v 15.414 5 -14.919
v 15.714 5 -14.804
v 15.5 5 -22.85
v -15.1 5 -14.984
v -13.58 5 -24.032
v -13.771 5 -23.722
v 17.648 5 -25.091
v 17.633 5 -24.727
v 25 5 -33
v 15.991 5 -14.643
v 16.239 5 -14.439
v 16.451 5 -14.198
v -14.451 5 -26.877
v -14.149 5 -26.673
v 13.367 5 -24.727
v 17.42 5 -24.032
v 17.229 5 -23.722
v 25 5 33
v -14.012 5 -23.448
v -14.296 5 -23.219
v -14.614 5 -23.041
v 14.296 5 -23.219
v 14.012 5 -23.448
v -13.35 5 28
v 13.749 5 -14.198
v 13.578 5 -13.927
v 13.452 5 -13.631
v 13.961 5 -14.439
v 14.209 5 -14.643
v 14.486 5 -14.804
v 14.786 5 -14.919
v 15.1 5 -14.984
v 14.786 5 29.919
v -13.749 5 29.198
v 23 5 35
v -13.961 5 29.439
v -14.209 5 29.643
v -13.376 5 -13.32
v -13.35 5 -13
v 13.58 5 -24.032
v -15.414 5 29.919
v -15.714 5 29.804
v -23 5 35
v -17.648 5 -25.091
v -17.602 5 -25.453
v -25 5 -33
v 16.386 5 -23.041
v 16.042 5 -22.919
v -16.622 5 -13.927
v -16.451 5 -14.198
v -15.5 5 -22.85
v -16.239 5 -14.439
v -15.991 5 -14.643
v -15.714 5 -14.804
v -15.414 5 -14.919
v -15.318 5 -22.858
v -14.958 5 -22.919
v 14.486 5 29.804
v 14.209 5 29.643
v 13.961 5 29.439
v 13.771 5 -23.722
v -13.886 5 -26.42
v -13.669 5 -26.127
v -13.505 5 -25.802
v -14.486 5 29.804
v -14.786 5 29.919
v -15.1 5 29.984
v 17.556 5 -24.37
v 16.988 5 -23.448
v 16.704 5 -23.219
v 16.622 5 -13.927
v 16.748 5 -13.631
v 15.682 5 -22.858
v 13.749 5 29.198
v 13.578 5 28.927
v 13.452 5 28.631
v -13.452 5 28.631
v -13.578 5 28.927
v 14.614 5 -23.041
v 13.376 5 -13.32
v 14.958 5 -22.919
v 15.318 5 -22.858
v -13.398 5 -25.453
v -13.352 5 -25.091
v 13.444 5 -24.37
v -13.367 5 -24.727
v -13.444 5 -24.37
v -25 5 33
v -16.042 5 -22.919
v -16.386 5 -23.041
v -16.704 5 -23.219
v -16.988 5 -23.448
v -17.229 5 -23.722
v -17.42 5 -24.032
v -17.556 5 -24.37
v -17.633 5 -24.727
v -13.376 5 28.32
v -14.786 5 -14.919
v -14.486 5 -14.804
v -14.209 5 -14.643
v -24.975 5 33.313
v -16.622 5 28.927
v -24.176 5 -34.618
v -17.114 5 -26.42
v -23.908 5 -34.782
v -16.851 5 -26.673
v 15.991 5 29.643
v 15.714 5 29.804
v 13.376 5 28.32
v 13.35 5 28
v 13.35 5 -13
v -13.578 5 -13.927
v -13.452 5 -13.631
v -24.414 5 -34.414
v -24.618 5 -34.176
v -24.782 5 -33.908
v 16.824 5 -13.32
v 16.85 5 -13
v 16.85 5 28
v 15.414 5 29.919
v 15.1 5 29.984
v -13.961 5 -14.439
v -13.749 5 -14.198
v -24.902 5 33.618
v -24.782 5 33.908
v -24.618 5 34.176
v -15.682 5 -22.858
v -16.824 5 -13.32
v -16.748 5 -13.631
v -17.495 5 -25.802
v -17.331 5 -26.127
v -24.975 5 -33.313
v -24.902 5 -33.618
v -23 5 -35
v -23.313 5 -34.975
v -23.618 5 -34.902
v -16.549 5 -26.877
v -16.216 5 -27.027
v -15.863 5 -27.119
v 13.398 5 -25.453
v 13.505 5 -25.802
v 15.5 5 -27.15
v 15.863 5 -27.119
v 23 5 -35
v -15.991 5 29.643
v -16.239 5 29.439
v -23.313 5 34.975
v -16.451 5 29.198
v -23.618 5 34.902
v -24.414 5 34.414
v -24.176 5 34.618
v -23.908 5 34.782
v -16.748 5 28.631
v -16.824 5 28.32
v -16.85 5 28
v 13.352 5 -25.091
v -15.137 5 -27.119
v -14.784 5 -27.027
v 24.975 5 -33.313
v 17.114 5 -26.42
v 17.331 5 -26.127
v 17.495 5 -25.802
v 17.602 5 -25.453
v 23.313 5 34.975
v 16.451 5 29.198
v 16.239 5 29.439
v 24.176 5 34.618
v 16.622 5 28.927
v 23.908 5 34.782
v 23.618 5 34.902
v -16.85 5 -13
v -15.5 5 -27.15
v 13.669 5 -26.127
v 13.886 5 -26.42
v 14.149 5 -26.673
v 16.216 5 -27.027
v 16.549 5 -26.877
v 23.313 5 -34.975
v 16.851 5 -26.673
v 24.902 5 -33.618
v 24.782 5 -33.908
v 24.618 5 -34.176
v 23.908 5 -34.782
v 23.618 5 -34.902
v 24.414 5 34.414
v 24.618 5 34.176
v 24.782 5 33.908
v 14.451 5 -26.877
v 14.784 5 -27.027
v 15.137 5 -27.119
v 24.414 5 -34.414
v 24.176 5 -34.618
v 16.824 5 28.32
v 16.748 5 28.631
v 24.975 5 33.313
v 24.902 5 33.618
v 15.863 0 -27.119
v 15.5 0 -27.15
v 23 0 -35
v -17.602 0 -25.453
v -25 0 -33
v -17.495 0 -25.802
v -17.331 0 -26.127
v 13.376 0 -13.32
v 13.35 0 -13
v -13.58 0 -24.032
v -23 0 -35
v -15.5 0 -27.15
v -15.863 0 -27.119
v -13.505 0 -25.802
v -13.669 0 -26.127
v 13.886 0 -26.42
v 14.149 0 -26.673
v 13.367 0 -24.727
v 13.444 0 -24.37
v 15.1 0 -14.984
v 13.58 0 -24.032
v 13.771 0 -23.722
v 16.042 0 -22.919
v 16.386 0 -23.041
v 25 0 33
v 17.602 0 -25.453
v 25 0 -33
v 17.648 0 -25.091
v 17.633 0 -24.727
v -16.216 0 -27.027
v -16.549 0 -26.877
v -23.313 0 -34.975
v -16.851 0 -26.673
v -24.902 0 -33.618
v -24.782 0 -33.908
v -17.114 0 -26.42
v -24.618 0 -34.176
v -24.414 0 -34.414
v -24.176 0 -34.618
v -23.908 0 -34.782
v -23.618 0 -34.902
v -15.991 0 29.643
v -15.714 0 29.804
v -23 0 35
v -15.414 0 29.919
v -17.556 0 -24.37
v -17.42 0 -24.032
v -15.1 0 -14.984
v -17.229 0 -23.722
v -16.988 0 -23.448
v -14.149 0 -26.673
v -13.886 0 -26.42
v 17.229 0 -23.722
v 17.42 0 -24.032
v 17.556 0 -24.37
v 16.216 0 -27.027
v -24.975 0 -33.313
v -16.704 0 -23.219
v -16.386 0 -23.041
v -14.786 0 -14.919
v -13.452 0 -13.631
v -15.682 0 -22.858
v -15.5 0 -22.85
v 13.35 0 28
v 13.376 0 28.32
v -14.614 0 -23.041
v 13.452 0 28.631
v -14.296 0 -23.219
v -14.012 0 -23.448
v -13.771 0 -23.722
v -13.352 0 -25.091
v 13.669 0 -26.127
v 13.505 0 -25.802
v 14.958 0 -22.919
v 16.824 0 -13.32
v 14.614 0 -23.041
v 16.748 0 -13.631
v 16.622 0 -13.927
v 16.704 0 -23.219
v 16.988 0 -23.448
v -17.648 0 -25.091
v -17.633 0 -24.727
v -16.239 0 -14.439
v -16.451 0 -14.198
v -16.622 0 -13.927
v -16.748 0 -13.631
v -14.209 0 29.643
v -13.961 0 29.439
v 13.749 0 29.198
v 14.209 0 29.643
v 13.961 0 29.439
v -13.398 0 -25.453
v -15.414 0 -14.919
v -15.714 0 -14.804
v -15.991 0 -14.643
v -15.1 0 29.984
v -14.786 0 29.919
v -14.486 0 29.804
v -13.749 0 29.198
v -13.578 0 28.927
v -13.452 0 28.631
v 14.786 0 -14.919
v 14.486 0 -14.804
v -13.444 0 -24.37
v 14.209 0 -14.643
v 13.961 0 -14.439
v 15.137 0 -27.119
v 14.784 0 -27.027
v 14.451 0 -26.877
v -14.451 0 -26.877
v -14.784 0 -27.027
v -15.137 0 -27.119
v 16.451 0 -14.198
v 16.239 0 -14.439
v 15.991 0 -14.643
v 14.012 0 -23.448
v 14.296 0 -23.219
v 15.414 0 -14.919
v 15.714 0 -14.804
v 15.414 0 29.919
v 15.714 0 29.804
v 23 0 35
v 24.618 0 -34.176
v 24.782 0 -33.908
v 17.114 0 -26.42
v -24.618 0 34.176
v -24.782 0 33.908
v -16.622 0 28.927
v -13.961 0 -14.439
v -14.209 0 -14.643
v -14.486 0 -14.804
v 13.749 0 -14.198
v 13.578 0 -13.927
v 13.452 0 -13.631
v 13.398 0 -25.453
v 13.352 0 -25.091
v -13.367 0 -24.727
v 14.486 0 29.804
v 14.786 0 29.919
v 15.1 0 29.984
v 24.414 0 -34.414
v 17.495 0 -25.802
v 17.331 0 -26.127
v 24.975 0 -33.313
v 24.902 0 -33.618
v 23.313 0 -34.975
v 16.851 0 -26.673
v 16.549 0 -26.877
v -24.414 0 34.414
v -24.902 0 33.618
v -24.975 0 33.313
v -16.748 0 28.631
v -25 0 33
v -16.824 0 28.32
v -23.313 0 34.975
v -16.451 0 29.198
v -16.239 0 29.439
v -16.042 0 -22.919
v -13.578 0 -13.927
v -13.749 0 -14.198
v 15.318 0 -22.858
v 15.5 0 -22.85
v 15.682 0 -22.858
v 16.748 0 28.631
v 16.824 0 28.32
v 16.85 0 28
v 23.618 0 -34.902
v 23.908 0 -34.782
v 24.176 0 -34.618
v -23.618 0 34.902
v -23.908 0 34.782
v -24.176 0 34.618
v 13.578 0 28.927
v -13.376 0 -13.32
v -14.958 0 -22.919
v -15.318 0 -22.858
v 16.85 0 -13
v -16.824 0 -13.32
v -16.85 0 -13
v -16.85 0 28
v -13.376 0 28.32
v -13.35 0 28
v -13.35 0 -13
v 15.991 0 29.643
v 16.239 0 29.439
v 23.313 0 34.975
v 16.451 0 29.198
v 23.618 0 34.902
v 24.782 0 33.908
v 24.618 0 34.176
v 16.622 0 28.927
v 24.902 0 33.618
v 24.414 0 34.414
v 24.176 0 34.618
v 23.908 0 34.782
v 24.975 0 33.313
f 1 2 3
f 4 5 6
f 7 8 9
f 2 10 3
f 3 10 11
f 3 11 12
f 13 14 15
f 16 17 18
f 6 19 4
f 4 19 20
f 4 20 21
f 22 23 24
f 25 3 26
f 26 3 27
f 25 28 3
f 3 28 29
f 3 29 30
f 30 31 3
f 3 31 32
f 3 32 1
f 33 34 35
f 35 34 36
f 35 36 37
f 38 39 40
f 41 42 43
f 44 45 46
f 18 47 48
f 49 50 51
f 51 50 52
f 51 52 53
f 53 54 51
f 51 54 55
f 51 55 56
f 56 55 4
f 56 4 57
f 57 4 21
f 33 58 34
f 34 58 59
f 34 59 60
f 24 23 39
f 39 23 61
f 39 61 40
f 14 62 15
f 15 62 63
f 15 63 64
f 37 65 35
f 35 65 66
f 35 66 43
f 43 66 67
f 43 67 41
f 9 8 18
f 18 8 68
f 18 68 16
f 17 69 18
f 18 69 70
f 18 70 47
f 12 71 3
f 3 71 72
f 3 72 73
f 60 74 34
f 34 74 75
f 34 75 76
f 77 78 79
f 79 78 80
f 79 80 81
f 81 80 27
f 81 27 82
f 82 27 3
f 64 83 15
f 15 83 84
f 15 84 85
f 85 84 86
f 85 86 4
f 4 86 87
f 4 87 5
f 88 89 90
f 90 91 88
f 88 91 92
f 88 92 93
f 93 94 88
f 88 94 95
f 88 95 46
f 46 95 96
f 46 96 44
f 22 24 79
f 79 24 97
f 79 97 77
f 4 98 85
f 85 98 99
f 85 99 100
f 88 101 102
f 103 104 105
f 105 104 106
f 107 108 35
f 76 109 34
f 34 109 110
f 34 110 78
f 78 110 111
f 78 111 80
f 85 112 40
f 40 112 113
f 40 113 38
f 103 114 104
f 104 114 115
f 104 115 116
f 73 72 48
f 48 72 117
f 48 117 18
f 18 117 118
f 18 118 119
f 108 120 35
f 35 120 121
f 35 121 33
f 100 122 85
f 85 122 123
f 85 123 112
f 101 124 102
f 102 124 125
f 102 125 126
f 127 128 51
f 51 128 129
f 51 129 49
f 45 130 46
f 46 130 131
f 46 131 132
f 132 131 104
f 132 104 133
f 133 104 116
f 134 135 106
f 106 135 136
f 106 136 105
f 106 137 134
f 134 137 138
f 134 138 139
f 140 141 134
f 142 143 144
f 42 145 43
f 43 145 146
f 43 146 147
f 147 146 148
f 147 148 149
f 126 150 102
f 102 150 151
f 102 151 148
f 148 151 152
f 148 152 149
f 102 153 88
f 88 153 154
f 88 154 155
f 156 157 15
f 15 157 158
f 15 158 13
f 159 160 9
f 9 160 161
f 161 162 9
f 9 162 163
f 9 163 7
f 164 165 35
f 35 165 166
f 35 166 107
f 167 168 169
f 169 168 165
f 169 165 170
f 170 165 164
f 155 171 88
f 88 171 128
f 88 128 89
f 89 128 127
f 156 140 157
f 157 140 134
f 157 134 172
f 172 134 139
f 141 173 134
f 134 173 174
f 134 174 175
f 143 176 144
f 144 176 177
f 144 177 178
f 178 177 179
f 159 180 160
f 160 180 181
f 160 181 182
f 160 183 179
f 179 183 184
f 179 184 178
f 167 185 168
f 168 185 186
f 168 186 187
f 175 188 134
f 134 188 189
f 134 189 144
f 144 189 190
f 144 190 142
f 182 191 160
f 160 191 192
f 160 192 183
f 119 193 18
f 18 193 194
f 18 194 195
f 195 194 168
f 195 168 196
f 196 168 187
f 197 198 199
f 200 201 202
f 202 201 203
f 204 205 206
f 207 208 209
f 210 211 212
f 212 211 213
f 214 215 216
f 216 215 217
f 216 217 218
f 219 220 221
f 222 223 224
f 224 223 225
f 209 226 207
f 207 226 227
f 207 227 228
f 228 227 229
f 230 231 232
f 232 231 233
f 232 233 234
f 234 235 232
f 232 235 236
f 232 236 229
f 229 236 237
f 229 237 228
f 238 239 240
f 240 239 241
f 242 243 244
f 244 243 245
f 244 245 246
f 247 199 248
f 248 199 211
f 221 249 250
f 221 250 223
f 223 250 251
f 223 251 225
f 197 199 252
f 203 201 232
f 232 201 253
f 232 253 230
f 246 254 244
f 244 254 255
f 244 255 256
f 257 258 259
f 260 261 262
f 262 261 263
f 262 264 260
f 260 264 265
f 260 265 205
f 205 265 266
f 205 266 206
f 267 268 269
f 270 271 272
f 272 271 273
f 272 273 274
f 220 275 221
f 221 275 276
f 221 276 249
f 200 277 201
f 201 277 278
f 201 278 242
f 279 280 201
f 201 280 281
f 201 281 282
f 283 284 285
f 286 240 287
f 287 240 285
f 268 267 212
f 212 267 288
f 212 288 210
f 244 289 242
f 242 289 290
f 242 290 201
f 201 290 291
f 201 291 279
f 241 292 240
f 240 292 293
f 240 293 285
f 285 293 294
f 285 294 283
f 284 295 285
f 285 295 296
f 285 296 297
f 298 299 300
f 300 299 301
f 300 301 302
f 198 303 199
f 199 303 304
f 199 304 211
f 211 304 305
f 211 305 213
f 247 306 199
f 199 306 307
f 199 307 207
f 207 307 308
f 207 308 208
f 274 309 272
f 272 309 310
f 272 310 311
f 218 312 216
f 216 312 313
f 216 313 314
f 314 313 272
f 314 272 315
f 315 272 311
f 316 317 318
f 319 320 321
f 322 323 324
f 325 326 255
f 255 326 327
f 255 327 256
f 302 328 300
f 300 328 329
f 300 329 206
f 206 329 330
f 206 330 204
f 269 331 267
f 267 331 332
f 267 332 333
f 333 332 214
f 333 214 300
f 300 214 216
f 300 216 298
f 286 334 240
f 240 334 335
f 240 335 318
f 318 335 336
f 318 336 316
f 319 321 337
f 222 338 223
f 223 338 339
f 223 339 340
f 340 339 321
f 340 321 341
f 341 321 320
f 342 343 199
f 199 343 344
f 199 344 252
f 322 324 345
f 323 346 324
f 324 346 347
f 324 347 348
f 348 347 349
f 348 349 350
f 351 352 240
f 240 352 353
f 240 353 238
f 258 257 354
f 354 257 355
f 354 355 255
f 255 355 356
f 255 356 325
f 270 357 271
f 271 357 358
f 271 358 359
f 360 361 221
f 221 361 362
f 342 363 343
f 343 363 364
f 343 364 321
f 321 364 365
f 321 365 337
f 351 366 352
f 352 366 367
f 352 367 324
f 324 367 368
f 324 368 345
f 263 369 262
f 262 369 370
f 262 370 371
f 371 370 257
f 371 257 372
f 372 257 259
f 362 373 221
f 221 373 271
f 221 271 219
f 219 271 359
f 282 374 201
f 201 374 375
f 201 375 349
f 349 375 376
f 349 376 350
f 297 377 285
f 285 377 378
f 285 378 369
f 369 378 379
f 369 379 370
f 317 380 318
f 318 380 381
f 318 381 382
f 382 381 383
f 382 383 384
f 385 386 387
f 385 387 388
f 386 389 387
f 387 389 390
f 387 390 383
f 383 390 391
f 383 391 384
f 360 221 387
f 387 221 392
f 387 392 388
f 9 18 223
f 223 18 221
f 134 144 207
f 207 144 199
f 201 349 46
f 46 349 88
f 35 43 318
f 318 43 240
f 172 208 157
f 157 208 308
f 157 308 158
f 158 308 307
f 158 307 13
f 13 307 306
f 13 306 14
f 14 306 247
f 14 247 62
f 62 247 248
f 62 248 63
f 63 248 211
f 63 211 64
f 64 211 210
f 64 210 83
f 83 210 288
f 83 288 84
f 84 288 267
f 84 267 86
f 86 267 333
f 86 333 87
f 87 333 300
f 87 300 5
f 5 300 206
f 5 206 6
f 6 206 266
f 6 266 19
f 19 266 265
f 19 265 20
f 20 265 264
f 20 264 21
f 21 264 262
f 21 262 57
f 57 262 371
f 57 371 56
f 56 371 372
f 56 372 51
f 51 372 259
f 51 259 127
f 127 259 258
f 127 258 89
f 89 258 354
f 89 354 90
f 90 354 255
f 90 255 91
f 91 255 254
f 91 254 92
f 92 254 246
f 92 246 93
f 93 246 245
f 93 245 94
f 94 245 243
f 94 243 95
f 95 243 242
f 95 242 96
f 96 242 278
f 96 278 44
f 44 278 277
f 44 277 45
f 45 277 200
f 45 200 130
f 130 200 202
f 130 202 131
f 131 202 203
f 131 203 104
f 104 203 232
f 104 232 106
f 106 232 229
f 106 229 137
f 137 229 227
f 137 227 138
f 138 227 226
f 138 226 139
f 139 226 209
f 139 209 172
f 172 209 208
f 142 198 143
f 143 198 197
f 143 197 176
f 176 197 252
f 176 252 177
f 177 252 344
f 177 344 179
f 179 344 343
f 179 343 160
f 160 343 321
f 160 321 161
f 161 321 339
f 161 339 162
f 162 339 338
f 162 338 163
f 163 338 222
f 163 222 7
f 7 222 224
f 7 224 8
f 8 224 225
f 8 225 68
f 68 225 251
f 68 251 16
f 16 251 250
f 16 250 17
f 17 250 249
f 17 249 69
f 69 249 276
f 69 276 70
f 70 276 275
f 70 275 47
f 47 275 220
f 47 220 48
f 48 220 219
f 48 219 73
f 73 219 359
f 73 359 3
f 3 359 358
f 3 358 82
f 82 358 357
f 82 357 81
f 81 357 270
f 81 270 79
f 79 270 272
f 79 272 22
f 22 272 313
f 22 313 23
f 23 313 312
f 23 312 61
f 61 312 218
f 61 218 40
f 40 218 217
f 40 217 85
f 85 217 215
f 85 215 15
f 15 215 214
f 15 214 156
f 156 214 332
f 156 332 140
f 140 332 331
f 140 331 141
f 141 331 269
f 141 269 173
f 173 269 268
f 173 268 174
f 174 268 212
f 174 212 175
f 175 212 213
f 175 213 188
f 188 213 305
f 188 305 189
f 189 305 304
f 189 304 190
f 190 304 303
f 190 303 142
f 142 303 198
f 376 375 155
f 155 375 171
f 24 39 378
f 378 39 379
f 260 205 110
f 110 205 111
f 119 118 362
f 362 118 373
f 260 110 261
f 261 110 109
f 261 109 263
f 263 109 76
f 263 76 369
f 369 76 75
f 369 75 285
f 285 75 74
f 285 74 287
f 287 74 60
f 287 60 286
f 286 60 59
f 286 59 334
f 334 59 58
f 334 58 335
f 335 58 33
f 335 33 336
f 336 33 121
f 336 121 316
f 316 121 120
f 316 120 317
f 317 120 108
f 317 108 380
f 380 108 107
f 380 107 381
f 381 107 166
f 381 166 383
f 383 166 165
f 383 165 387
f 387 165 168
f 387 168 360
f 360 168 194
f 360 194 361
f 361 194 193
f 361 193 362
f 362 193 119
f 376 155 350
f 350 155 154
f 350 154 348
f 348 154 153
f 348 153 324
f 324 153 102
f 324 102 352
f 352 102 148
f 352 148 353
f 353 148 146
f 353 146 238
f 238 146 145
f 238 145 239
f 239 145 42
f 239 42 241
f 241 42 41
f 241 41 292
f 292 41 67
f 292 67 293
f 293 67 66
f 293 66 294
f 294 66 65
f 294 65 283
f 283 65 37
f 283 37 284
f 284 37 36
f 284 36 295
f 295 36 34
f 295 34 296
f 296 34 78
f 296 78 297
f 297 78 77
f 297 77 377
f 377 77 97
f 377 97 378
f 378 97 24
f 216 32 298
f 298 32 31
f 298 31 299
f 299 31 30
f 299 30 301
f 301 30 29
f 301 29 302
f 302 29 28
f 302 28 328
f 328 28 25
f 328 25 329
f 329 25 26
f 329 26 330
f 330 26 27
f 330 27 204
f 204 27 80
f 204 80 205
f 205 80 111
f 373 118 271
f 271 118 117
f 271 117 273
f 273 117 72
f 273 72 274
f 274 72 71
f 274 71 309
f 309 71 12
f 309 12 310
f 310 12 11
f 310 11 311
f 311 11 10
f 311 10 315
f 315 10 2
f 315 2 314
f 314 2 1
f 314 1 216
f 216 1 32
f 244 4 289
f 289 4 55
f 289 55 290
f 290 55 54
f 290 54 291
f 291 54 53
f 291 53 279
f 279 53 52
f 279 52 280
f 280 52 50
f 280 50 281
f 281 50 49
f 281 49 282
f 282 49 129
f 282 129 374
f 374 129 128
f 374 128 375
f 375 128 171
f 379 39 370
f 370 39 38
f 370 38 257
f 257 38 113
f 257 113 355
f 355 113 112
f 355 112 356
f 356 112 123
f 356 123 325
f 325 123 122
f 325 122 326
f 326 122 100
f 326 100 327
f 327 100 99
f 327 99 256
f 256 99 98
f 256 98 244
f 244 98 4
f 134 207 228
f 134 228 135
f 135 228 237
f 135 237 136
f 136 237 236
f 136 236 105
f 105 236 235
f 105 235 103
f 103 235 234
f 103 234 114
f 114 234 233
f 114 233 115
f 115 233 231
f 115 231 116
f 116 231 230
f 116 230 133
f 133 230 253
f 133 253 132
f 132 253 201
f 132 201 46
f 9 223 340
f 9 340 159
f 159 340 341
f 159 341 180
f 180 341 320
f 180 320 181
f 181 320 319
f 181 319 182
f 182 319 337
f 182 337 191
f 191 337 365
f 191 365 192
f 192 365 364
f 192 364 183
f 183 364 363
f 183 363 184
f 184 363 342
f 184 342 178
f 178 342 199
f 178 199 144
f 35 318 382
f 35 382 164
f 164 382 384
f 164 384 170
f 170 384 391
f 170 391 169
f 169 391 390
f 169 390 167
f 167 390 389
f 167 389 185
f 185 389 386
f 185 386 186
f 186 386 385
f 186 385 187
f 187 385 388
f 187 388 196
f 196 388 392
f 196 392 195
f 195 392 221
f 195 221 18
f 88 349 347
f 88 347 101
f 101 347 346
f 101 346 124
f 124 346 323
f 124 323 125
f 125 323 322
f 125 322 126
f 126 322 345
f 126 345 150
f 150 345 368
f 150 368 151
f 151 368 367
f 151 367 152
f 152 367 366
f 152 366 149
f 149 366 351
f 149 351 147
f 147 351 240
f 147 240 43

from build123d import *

# Parameters (mm, degrees)
SKETCH_1_W      = 50
SKETCH_1_H      = 70
SKETCH_1_R      = 2.15
SKETCH_1_W_2    = 3.5
SKETCH_1_H_2    = 45
EXTRUDE_1_DEPTH = 5
FILLET_1_R      = 2
FILLET_2_R      = 2


with BuildPart() as part:
    # 草圖1 → 填料-伸長1 (new body)
    with BuildSketch(Plane(origin=(0, 0, 0), x_dir=(1, 0, 0), z_dir=(0, 1, 0))):
        Rectangle(SKETCH_1_W, SKETCH_1_H)
        with Locations(Location((-15.5, 25, 0), (0, 0, 270))):
            Circle(SKETCH_1_R, mode=Mode.SUBTRACT)
        with Locations(Location((15.5, 25, 0), (0, 0, 270))):
            Circle(SKETCH_1_R, mode=Mode.SUBTRACT)
        with Locations((-15.1, -7.5)):
            Rectangle(SKETCH_1_W_2, SKETCH_1_H_2, mode=Mode.SUBTRACT)
        with Locations((15.1, -7.5)):
            Rectangle(SKETCH_1_W_2, SKETCH_1_H_2, mode=Mode.SUBTRACT)
    extrude(amount=EXTRUDE_1_DEPTH)

    # 圓角1
    # the kernel refuses this fillet: 2 mm, written as the material it adds along each edge
    with BuildSketch(Plane(origin=(16.85, 0, 30), x_dir=(0, 0, -1), z_dir=(0, 1, 0)), Plane(origin=(-13.35, 0, 30), x_dir=(0, 0, -1), z_dir=(0, 1, 0))) as fillet_1_piece_1:
        with BuildLine():
            CenterArc((FILLET_1_R, FILLET_1_R), FILLET_1_R, 180, 90)
            Line((0, FILLET_1_R), (0, 0))
            Line((0, 0), (FILLET_1_R, 0))
        make_face()
    extrude(amount=5)
    with BuildSketch(Plane(origin=(13.35, 0, 30), x_dir=(0, 0, -1), z_dir=(0, 1, 0)), Plane(origin=(-16.85, 0, 30), x_dir=(0, 0, -1), z_dir=(0, 1, 0)), Plane(origin=(16.85, 0, -15), x_dir=(0, 0, 1), z_dir=(0, 1, 0)), Plane(origin=(13.35, 0, -15), x_dir=(1, 0, 0), z_dir=(0, 1, 0)), Plane(origin=(-13.35, 0, -15), x_dir=(0, 0, 1), z_dir=(0, 1, 0)), Plane(origin=(-16.85, 0, -15), x_dir=(1, 0, 0), z_dir=(0, 1, 0))) as fillet_1_piece_2:
        with BuildLine():
            CenterArc((FILLET_1_R, -FILLET_1_R), FILLET_1_R, 90, 90)
            Line((0, -FILLET_1_R), (0, 0))
            Line((0, 0), (FILLET_1_R, 0))
        make_face()
    extrude(amount=5)

    # 圓角2
    fillet_2_edges = [part.edges().sort_by_distance(p)[0] for p in [
        (25, 2.5, 35),
        (-25, 2.5, 35),
        (-25, 2.5, -35),
        (25, 2.5, -35),
    ]]
    fillet(fillet_2_edges, radius=FILLET_2_R)


solid = part.part
